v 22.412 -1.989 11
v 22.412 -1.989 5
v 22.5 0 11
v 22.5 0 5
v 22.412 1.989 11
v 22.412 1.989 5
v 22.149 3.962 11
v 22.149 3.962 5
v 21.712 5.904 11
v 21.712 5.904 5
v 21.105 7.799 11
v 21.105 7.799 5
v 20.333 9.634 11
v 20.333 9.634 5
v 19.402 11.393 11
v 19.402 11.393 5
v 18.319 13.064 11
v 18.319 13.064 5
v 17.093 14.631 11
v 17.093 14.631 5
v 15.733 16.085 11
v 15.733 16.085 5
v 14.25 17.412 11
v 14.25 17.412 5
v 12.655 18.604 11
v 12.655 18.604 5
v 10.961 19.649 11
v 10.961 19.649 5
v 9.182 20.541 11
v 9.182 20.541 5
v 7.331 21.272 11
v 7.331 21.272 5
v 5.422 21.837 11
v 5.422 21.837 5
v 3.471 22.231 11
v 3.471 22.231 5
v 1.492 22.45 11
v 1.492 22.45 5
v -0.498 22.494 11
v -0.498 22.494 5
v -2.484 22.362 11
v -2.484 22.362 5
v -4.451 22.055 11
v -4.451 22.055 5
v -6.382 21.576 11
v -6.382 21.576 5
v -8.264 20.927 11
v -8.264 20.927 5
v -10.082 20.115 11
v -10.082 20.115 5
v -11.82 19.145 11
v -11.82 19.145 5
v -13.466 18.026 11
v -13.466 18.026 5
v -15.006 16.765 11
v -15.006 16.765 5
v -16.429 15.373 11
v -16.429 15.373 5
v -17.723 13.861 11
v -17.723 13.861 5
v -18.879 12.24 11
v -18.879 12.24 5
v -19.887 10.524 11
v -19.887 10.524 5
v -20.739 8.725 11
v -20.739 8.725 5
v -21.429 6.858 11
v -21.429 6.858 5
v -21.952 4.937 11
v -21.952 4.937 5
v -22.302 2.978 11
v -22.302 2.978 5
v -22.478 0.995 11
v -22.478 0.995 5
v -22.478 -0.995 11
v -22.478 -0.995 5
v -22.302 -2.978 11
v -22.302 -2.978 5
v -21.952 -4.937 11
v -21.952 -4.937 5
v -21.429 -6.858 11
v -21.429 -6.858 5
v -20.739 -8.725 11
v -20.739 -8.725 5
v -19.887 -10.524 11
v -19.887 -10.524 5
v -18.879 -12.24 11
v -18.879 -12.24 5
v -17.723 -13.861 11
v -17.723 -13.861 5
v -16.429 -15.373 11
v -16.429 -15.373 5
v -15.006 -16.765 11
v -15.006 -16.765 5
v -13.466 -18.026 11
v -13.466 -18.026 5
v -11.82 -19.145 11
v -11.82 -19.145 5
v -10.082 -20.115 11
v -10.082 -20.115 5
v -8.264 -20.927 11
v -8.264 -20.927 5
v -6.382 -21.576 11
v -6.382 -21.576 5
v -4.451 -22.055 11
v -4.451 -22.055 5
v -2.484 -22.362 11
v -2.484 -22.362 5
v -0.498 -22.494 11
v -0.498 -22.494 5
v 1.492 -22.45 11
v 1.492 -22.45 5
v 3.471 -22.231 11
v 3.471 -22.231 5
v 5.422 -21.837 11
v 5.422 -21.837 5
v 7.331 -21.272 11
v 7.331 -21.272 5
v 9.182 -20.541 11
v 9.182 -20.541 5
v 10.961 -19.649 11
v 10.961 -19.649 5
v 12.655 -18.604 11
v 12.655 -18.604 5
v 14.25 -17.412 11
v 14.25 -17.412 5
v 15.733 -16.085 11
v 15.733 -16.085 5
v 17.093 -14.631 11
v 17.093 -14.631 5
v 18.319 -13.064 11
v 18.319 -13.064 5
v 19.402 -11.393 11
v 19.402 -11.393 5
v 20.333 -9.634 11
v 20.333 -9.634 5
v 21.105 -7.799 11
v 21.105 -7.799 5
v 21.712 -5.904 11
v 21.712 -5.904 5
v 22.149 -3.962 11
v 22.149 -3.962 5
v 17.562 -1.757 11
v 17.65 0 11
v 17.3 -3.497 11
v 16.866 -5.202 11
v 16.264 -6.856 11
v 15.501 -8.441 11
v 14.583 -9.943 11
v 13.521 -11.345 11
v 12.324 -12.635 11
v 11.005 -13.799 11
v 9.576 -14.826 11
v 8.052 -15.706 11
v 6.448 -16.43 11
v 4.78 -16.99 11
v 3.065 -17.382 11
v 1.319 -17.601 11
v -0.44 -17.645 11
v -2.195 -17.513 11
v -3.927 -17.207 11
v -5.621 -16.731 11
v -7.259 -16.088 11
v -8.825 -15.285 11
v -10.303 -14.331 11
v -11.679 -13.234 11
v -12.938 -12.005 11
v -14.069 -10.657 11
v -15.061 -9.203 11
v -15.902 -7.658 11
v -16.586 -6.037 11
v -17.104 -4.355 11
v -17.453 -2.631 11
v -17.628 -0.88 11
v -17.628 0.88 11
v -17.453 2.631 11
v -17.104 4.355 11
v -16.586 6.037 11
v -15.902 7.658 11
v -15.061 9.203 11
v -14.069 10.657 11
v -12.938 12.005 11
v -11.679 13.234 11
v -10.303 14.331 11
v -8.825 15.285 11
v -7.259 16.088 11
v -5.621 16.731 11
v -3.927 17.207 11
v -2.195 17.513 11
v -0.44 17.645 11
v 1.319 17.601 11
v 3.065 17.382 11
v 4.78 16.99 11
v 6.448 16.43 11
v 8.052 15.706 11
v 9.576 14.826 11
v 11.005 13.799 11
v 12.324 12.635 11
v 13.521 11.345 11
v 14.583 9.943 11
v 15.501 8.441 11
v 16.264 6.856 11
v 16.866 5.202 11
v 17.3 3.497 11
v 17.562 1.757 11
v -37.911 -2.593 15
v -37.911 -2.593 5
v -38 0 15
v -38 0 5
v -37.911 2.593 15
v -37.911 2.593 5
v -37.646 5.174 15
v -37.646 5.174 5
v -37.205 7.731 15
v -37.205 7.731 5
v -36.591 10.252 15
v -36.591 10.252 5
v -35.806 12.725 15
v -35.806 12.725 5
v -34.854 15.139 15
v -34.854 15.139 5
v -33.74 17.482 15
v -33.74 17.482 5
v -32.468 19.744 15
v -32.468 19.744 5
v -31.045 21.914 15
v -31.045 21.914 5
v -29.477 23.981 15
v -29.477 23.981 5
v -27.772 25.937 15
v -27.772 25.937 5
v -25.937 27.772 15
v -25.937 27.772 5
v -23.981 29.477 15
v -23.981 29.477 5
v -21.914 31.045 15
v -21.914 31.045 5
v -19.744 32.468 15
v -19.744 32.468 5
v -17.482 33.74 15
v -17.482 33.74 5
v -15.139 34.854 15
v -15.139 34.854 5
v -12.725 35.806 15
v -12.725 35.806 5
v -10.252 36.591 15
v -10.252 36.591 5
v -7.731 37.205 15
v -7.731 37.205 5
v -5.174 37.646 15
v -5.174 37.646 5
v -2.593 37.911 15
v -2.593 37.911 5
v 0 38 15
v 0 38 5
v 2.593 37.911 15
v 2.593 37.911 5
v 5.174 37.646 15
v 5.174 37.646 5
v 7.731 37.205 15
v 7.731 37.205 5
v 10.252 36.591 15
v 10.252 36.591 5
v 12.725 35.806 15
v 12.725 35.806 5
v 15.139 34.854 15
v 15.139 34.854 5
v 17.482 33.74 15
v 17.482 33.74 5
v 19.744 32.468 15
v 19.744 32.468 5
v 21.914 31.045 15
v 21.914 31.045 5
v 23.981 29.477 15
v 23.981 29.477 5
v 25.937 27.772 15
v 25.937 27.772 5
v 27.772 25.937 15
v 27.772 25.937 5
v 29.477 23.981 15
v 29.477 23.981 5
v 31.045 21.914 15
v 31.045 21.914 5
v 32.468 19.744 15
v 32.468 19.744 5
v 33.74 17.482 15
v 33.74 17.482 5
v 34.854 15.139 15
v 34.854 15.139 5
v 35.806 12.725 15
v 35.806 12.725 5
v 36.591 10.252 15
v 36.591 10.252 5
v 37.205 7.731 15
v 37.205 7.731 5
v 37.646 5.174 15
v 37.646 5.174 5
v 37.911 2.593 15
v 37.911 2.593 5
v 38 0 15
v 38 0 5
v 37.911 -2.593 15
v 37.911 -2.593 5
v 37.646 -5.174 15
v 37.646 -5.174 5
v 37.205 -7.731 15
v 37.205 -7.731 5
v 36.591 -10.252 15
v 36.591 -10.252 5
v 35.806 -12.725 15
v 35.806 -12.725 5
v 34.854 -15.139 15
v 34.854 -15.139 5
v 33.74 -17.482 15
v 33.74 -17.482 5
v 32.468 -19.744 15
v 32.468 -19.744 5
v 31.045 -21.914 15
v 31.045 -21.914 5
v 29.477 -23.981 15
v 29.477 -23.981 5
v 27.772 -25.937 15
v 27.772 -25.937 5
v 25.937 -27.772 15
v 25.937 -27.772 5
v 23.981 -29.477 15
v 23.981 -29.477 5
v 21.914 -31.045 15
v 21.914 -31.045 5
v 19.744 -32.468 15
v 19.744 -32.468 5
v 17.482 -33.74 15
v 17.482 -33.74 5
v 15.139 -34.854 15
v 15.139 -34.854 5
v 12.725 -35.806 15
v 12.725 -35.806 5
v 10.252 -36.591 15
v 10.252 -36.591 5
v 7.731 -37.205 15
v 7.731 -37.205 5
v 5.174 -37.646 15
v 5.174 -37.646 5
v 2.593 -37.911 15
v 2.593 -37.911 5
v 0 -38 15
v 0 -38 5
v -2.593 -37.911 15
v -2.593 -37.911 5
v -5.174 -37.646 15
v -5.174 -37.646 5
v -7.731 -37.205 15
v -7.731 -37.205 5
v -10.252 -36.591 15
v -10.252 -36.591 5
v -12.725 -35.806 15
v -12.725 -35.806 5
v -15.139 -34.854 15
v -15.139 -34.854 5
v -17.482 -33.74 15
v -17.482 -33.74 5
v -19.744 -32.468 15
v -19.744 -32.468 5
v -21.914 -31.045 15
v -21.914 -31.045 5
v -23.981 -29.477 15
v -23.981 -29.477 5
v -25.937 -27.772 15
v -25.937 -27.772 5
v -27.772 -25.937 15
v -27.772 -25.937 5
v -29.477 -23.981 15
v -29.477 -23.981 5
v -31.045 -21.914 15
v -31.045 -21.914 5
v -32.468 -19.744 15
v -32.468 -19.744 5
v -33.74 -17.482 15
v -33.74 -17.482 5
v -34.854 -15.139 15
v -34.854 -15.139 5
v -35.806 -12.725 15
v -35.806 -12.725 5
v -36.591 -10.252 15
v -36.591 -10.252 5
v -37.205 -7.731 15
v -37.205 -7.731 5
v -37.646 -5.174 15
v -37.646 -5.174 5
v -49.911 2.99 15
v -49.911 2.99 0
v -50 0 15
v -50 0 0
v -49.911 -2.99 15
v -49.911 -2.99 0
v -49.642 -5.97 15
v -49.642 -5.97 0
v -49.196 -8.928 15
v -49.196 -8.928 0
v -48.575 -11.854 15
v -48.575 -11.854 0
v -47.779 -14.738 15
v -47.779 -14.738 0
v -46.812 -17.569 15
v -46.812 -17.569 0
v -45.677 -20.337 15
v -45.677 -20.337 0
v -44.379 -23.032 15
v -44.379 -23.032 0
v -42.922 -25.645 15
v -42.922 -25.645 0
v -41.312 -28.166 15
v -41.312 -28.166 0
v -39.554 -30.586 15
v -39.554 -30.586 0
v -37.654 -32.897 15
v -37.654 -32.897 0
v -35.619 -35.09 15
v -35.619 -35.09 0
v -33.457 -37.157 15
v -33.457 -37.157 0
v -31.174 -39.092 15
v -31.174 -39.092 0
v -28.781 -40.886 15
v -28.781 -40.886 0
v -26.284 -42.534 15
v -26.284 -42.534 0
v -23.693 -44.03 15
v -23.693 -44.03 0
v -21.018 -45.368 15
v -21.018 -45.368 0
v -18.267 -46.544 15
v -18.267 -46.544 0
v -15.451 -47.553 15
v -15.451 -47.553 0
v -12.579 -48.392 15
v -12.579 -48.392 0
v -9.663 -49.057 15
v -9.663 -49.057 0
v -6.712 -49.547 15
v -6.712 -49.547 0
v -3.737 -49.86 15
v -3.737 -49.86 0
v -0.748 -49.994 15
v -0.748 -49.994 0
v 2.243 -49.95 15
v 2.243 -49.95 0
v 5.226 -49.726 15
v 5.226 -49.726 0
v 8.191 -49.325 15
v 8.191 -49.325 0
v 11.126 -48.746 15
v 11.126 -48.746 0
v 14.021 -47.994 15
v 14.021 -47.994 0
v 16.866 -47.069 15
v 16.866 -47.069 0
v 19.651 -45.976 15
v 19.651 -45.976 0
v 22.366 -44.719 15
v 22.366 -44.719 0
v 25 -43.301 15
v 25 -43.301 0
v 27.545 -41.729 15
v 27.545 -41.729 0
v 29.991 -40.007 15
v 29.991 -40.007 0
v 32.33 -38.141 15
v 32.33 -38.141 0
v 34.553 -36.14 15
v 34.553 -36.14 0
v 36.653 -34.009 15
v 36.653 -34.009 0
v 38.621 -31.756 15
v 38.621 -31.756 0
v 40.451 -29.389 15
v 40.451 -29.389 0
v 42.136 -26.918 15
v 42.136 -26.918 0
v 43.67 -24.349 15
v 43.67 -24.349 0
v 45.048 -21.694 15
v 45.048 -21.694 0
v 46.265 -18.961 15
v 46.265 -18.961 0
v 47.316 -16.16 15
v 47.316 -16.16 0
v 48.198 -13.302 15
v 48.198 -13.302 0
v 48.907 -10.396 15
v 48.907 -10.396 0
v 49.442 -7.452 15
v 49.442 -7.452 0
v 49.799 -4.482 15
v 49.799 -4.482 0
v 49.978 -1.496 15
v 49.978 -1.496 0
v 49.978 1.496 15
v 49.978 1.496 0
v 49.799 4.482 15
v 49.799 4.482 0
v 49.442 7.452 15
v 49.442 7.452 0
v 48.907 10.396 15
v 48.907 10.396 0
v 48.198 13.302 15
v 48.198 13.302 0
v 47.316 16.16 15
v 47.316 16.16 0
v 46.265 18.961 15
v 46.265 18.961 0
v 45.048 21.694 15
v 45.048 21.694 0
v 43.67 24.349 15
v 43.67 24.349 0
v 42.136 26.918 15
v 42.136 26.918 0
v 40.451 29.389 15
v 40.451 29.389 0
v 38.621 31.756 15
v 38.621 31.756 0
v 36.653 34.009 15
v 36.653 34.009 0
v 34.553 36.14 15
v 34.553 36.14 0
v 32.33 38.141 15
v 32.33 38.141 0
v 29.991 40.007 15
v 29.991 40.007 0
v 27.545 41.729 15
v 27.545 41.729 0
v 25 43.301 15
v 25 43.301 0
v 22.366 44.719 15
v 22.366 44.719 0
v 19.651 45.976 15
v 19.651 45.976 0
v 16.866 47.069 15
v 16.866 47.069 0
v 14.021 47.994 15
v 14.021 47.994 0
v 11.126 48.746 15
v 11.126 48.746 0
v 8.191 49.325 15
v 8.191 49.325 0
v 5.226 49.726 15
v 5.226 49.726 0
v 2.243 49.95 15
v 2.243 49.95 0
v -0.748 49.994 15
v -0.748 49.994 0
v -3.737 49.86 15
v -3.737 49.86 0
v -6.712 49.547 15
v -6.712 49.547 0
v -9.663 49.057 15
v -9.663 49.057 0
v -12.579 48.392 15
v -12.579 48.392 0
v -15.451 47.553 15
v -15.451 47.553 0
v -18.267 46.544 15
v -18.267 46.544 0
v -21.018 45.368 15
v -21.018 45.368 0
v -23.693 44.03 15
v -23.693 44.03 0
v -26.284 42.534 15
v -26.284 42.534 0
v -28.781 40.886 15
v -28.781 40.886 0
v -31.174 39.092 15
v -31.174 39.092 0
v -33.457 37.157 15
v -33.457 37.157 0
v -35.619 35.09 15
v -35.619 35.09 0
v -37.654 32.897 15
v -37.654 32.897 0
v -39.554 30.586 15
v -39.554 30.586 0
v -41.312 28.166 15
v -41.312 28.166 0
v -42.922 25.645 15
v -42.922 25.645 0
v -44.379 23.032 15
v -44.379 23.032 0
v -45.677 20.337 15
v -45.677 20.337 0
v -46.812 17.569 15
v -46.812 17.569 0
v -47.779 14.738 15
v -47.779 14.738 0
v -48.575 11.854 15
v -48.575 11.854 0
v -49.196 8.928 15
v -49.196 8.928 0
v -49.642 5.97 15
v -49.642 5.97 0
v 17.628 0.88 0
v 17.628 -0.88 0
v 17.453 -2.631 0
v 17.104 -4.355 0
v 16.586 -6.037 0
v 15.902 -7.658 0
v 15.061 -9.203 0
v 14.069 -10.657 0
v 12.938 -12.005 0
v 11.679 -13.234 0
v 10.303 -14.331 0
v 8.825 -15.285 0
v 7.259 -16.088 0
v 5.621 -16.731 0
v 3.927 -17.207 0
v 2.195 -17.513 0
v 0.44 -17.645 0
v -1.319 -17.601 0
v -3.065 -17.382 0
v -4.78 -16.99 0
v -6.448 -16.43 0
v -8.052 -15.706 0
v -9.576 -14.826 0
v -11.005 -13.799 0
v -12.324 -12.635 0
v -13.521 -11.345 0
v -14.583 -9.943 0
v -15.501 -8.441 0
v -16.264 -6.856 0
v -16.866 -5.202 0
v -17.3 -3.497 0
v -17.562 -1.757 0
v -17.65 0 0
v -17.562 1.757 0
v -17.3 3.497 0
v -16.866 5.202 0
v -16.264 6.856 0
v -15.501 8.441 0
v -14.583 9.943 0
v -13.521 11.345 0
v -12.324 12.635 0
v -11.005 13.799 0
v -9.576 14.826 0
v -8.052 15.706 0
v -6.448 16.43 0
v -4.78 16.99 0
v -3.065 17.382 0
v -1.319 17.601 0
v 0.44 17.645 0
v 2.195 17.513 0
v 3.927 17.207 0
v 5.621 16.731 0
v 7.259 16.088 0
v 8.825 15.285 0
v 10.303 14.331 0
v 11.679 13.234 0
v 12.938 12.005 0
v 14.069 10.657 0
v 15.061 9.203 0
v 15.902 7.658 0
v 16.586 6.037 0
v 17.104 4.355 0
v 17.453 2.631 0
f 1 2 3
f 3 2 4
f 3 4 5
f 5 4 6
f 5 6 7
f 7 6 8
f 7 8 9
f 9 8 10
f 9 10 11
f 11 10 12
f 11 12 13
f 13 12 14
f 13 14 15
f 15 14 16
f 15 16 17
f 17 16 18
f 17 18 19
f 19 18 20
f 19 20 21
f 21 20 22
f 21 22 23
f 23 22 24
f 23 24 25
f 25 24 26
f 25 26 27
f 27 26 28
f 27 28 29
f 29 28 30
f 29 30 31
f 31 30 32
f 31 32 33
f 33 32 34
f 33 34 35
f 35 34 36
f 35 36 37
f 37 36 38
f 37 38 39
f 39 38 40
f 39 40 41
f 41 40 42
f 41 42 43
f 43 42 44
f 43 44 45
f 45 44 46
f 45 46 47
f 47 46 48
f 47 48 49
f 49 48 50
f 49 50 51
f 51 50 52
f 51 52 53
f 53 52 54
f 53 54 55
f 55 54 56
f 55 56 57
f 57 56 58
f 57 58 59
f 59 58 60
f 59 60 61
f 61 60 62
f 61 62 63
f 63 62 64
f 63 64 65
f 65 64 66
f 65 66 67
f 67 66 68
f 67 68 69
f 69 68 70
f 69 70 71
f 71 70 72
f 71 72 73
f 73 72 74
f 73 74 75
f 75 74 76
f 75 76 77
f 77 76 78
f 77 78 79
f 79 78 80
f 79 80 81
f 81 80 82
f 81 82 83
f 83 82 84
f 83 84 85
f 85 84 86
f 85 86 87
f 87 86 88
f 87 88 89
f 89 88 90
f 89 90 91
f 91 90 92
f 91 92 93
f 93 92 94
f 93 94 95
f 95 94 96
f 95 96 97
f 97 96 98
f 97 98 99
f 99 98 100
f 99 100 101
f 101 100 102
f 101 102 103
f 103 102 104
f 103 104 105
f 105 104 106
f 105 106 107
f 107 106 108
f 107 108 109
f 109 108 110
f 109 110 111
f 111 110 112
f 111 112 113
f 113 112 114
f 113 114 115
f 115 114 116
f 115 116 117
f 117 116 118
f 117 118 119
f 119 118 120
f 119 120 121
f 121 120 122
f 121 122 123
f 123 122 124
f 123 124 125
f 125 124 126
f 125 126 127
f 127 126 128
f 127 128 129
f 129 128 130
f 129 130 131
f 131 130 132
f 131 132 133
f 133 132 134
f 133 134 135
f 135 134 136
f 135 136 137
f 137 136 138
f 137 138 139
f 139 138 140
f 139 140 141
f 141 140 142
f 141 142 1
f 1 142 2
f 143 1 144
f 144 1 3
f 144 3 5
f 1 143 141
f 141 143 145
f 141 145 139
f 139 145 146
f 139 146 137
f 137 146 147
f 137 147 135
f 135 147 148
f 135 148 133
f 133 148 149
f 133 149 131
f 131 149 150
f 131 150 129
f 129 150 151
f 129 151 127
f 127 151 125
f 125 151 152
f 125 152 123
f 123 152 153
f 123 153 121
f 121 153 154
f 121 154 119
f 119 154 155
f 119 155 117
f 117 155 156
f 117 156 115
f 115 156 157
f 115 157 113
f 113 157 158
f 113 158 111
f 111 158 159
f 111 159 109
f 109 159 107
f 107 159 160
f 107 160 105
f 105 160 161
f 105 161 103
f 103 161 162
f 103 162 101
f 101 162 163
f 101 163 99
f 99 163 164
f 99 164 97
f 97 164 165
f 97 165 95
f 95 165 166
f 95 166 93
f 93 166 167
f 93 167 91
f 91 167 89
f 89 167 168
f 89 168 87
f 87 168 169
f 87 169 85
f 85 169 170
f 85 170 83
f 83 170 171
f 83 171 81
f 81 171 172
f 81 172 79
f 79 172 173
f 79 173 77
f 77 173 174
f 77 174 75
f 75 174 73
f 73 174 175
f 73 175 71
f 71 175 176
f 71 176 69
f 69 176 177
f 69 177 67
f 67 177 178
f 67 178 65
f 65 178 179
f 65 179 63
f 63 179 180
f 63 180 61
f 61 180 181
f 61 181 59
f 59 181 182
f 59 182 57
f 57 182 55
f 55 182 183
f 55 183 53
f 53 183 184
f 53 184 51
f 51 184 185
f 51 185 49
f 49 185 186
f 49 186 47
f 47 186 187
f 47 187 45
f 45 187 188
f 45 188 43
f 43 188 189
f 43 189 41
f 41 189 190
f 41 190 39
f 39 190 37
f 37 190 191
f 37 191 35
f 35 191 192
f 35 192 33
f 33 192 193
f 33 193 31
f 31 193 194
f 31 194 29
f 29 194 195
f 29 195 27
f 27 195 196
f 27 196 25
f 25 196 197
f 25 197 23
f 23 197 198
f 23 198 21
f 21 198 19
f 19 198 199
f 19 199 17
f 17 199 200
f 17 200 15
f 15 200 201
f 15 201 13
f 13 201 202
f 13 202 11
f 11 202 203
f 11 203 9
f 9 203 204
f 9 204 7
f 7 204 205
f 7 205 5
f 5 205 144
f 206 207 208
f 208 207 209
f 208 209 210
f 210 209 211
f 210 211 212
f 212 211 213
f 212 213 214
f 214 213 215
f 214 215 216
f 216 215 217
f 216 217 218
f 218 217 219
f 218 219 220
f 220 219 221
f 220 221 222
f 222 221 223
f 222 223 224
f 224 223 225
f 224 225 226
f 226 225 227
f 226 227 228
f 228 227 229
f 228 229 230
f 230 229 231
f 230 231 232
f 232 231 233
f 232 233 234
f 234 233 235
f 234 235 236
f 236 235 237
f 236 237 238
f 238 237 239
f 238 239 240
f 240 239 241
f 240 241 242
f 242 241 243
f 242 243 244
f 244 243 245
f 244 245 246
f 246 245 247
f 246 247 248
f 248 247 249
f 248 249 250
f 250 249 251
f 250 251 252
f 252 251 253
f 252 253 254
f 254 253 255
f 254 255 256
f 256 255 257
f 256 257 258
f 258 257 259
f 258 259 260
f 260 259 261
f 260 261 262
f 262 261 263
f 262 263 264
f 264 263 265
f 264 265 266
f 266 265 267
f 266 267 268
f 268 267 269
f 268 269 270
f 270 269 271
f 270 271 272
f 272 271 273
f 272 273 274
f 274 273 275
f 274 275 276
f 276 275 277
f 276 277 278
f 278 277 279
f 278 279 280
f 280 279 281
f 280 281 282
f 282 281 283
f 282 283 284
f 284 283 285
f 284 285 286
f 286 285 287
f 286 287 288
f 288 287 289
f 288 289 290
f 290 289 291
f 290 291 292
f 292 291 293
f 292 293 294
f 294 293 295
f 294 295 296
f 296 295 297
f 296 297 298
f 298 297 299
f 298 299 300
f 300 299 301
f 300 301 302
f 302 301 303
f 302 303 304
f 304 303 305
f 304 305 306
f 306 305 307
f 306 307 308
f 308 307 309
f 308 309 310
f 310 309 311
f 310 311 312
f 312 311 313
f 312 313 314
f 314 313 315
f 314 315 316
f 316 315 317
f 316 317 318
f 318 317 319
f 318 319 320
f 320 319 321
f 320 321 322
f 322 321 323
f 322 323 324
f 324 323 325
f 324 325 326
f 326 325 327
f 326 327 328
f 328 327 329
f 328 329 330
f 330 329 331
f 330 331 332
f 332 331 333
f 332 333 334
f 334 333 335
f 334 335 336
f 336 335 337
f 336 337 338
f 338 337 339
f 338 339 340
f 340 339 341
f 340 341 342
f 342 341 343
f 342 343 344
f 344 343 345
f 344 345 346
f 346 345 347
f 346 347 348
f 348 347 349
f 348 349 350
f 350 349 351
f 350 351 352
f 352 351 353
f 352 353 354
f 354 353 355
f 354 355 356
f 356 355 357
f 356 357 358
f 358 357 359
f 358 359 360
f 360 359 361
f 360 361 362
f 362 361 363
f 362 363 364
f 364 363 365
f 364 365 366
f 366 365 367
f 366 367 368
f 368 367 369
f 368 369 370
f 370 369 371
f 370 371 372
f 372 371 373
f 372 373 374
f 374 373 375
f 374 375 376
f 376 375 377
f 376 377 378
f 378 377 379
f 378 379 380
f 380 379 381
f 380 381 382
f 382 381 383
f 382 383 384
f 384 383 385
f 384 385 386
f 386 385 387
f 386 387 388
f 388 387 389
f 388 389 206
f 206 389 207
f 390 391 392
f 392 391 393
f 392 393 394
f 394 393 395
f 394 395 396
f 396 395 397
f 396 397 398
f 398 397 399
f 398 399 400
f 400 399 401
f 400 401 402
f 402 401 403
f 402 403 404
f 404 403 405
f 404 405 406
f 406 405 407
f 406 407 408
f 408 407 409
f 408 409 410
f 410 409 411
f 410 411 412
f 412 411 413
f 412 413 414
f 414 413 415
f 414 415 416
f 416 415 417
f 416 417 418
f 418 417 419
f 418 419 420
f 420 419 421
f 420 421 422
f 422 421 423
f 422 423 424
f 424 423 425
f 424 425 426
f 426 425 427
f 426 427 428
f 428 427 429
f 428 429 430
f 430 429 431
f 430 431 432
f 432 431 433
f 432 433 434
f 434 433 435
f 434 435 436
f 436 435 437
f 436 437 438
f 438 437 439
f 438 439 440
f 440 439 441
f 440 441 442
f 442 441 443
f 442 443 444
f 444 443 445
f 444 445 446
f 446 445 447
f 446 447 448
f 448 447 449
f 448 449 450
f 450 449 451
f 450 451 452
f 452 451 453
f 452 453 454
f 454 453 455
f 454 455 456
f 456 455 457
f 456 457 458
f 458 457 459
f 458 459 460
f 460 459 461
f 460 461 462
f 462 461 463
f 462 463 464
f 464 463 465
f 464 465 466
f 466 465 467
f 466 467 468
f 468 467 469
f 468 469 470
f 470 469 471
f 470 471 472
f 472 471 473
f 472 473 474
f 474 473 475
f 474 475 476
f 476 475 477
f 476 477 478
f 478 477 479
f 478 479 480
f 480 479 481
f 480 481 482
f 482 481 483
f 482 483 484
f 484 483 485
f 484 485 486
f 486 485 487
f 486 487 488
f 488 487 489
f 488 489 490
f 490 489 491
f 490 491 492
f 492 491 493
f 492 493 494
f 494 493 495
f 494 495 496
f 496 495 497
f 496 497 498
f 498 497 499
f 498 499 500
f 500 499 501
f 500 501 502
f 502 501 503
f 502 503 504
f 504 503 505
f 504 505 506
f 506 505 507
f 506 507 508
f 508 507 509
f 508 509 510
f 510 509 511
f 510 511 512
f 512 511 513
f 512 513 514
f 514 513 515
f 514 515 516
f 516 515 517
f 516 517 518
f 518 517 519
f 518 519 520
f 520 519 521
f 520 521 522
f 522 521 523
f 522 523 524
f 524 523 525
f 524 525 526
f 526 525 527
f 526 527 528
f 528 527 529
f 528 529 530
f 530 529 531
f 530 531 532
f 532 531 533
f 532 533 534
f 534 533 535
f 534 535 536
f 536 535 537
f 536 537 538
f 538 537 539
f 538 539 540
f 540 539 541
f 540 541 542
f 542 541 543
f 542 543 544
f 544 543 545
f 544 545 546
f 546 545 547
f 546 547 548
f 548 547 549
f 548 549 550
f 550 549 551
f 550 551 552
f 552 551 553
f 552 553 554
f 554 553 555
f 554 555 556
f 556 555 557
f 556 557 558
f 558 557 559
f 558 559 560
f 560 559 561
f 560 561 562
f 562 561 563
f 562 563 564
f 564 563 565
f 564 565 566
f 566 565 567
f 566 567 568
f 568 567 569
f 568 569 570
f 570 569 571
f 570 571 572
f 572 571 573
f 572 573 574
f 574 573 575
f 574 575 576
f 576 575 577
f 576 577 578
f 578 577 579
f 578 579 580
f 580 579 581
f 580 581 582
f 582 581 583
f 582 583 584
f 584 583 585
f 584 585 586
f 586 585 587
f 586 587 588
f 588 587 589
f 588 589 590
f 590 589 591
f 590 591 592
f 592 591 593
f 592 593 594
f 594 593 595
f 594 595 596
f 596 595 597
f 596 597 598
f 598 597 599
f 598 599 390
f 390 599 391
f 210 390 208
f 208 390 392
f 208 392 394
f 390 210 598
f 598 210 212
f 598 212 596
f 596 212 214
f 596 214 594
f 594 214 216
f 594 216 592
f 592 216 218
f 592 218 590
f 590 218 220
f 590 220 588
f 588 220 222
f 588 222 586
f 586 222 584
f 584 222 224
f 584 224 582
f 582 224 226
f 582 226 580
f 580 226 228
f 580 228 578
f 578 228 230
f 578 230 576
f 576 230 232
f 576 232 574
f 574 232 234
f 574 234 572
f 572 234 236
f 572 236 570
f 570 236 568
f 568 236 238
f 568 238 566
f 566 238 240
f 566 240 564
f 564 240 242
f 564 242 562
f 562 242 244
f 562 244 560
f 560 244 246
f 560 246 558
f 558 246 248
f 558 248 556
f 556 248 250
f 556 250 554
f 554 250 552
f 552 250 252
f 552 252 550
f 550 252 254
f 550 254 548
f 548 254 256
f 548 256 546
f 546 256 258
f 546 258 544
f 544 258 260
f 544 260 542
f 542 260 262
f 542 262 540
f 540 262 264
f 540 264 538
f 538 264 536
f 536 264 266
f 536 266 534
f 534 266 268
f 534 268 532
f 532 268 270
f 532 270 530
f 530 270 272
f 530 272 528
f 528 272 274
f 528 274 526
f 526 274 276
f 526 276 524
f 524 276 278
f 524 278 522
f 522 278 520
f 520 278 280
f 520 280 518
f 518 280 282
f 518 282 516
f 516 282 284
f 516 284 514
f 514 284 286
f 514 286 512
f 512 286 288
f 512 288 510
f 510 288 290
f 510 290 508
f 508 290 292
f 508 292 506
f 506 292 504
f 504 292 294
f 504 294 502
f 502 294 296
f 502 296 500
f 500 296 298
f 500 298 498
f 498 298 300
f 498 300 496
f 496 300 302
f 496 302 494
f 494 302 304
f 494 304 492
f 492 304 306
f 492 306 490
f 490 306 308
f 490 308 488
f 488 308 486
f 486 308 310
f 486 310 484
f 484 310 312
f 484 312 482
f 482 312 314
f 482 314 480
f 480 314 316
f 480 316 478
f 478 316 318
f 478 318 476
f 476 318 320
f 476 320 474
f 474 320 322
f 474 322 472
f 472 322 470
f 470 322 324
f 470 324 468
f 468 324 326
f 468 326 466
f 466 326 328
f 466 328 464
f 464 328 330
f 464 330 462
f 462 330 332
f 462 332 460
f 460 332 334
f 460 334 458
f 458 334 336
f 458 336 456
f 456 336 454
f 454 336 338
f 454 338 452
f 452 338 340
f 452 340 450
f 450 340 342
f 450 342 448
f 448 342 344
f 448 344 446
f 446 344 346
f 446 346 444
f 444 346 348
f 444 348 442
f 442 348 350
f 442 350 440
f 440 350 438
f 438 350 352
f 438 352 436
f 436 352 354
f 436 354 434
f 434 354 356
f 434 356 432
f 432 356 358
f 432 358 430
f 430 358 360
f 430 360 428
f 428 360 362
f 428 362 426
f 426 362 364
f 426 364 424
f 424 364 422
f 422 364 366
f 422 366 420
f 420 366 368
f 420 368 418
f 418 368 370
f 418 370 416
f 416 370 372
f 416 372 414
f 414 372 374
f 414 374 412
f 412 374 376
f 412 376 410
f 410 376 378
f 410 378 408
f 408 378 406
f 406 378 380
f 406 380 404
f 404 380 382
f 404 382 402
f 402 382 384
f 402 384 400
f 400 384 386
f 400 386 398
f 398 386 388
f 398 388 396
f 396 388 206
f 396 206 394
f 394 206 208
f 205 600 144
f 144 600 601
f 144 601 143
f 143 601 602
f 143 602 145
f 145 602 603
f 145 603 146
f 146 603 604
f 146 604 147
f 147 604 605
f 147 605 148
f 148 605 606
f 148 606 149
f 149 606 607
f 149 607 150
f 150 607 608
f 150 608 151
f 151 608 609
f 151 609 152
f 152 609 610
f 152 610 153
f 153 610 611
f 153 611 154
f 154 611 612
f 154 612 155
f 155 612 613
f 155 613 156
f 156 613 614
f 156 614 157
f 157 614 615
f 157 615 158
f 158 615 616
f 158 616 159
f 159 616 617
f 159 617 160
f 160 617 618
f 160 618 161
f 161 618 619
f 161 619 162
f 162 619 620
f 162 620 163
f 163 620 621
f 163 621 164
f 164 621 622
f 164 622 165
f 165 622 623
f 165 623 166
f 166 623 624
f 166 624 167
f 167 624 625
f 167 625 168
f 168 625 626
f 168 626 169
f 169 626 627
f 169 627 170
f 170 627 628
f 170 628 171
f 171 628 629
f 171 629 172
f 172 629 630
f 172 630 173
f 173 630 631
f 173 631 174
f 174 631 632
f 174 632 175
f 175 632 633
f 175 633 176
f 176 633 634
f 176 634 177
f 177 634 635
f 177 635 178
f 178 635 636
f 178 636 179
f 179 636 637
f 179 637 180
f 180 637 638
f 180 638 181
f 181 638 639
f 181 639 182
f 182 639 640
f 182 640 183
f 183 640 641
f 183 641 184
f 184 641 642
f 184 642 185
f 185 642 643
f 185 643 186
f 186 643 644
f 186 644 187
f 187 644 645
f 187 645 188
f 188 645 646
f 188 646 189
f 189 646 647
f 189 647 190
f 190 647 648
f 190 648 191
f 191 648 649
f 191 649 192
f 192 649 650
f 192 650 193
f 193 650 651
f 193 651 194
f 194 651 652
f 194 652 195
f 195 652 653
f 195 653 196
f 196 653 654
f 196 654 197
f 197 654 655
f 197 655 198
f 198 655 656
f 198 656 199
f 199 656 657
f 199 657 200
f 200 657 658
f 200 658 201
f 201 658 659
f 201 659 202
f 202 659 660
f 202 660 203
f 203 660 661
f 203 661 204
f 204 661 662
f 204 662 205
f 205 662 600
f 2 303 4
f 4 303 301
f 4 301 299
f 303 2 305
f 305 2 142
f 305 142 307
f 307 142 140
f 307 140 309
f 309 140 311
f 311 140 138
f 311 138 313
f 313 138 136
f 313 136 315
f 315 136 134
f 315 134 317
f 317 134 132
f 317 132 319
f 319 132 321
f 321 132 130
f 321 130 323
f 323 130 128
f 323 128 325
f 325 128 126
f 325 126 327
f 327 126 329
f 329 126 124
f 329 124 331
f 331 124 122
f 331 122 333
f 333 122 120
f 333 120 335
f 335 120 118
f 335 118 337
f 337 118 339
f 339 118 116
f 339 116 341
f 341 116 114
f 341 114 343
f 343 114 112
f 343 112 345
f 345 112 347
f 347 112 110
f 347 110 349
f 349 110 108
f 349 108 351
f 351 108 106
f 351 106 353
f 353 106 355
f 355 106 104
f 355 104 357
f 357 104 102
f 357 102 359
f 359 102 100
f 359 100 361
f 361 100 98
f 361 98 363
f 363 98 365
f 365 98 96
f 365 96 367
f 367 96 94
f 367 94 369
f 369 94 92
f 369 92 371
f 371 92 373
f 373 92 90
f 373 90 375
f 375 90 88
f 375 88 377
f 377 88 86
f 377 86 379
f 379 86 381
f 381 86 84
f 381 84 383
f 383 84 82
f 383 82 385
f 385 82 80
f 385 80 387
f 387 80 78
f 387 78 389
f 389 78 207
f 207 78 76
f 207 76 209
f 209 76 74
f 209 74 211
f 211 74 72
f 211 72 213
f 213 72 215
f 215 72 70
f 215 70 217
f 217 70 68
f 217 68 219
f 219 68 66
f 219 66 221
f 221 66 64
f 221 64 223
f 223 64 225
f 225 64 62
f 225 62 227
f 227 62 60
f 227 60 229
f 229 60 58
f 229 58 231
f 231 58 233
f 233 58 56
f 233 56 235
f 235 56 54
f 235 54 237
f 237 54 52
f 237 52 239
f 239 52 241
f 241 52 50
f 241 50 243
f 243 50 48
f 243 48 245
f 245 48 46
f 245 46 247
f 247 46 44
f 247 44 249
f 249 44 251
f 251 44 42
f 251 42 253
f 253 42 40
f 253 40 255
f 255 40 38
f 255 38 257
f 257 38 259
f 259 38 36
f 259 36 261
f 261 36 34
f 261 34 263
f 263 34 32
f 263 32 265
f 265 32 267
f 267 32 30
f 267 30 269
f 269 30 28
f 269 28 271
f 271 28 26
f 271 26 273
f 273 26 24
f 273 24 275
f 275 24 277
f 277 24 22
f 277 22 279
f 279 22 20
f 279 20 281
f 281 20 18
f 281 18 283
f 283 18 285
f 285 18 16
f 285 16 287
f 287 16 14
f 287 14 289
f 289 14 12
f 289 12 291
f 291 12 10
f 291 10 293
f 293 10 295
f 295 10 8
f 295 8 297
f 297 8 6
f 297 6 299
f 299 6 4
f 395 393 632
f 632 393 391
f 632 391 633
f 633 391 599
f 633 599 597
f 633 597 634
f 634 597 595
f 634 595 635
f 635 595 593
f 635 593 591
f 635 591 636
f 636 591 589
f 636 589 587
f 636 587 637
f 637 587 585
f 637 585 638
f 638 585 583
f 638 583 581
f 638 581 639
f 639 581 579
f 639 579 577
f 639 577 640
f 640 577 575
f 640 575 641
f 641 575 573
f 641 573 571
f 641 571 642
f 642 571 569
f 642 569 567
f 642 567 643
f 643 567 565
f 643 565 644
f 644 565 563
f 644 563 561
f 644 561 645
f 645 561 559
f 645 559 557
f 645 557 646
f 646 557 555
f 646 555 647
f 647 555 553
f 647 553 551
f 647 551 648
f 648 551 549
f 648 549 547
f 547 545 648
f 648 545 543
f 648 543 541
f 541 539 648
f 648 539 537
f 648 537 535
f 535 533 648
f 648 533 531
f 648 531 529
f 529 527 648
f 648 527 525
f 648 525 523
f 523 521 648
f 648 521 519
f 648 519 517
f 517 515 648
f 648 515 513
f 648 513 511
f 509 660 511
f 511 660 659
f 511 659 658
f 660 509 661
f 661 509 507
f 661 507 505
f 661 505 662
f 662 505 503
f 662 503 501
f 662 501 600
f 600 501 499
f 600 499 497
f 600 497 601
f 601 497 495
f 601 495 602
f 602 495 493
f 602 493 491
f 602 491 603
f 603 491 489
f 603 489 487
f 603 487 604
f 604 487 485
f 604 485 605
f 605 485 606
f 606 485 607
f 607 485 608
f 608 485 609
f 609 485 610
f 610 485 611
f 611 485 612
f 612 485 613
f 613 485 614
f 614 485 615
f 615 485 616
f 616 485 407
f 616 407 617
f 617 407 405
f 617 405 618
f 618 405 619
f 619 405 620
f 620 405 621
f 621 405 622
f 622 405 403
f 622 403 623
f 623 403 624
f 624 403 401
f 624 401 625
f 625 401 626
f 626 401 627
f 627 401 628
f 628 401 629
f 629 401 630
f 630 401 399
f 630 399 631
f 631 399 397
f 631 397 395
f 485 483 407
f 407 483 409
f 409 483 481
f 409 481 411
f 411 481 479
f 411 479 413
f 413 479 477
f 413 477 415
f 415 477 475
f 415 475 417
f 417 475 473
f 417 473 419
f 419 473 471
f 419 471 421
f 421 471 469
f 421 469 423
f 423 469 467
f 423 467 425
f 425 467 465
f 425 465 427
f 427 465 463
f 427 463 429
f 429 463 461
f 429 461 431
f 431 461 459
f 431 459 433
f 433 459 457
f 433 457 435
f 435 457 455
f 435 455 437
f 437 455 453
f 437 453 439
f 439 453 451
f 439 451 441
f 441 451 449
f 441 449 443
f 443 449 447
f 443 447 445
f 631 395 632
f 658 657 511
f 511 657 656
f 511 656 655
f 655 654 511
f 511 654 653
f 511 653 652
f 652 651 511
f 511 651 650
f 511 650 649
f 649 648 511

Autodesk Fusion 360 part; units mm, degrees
sketch "Sketch1" plane through (0, 0, 0) normal (0, 0, 1) x (1, 0, 0)
  circle A0 centre (0, 0) radius 17.65
  circle A1 centre (0, 0) radius 38
  circle A2 centre (0, 0) radius 50
  dimension "d1" = 35.3
  dimension "d2" = 76
  dimension "d3" = 100
extrude "Extrude1" add sketch "Sketch1" along normal blind 5 contours A1
extrude "Extrude2" add sketch "Sketch1" along normal blind 15 contours A2
sketch "Sketch2" plane through (0, 0, 5) normal (0, 0, 1) x (-1, 0, 0)
  circle A0 centre (0, 0) radius 17.65
  circle A1 centre (0, 0) radius 38
  circle A2 centre (0, 0) radius 22.5
  dimension "d8" = 45
extrude "Extrude3" add sketch "Sketch2" along normal blind 6 contours A2
